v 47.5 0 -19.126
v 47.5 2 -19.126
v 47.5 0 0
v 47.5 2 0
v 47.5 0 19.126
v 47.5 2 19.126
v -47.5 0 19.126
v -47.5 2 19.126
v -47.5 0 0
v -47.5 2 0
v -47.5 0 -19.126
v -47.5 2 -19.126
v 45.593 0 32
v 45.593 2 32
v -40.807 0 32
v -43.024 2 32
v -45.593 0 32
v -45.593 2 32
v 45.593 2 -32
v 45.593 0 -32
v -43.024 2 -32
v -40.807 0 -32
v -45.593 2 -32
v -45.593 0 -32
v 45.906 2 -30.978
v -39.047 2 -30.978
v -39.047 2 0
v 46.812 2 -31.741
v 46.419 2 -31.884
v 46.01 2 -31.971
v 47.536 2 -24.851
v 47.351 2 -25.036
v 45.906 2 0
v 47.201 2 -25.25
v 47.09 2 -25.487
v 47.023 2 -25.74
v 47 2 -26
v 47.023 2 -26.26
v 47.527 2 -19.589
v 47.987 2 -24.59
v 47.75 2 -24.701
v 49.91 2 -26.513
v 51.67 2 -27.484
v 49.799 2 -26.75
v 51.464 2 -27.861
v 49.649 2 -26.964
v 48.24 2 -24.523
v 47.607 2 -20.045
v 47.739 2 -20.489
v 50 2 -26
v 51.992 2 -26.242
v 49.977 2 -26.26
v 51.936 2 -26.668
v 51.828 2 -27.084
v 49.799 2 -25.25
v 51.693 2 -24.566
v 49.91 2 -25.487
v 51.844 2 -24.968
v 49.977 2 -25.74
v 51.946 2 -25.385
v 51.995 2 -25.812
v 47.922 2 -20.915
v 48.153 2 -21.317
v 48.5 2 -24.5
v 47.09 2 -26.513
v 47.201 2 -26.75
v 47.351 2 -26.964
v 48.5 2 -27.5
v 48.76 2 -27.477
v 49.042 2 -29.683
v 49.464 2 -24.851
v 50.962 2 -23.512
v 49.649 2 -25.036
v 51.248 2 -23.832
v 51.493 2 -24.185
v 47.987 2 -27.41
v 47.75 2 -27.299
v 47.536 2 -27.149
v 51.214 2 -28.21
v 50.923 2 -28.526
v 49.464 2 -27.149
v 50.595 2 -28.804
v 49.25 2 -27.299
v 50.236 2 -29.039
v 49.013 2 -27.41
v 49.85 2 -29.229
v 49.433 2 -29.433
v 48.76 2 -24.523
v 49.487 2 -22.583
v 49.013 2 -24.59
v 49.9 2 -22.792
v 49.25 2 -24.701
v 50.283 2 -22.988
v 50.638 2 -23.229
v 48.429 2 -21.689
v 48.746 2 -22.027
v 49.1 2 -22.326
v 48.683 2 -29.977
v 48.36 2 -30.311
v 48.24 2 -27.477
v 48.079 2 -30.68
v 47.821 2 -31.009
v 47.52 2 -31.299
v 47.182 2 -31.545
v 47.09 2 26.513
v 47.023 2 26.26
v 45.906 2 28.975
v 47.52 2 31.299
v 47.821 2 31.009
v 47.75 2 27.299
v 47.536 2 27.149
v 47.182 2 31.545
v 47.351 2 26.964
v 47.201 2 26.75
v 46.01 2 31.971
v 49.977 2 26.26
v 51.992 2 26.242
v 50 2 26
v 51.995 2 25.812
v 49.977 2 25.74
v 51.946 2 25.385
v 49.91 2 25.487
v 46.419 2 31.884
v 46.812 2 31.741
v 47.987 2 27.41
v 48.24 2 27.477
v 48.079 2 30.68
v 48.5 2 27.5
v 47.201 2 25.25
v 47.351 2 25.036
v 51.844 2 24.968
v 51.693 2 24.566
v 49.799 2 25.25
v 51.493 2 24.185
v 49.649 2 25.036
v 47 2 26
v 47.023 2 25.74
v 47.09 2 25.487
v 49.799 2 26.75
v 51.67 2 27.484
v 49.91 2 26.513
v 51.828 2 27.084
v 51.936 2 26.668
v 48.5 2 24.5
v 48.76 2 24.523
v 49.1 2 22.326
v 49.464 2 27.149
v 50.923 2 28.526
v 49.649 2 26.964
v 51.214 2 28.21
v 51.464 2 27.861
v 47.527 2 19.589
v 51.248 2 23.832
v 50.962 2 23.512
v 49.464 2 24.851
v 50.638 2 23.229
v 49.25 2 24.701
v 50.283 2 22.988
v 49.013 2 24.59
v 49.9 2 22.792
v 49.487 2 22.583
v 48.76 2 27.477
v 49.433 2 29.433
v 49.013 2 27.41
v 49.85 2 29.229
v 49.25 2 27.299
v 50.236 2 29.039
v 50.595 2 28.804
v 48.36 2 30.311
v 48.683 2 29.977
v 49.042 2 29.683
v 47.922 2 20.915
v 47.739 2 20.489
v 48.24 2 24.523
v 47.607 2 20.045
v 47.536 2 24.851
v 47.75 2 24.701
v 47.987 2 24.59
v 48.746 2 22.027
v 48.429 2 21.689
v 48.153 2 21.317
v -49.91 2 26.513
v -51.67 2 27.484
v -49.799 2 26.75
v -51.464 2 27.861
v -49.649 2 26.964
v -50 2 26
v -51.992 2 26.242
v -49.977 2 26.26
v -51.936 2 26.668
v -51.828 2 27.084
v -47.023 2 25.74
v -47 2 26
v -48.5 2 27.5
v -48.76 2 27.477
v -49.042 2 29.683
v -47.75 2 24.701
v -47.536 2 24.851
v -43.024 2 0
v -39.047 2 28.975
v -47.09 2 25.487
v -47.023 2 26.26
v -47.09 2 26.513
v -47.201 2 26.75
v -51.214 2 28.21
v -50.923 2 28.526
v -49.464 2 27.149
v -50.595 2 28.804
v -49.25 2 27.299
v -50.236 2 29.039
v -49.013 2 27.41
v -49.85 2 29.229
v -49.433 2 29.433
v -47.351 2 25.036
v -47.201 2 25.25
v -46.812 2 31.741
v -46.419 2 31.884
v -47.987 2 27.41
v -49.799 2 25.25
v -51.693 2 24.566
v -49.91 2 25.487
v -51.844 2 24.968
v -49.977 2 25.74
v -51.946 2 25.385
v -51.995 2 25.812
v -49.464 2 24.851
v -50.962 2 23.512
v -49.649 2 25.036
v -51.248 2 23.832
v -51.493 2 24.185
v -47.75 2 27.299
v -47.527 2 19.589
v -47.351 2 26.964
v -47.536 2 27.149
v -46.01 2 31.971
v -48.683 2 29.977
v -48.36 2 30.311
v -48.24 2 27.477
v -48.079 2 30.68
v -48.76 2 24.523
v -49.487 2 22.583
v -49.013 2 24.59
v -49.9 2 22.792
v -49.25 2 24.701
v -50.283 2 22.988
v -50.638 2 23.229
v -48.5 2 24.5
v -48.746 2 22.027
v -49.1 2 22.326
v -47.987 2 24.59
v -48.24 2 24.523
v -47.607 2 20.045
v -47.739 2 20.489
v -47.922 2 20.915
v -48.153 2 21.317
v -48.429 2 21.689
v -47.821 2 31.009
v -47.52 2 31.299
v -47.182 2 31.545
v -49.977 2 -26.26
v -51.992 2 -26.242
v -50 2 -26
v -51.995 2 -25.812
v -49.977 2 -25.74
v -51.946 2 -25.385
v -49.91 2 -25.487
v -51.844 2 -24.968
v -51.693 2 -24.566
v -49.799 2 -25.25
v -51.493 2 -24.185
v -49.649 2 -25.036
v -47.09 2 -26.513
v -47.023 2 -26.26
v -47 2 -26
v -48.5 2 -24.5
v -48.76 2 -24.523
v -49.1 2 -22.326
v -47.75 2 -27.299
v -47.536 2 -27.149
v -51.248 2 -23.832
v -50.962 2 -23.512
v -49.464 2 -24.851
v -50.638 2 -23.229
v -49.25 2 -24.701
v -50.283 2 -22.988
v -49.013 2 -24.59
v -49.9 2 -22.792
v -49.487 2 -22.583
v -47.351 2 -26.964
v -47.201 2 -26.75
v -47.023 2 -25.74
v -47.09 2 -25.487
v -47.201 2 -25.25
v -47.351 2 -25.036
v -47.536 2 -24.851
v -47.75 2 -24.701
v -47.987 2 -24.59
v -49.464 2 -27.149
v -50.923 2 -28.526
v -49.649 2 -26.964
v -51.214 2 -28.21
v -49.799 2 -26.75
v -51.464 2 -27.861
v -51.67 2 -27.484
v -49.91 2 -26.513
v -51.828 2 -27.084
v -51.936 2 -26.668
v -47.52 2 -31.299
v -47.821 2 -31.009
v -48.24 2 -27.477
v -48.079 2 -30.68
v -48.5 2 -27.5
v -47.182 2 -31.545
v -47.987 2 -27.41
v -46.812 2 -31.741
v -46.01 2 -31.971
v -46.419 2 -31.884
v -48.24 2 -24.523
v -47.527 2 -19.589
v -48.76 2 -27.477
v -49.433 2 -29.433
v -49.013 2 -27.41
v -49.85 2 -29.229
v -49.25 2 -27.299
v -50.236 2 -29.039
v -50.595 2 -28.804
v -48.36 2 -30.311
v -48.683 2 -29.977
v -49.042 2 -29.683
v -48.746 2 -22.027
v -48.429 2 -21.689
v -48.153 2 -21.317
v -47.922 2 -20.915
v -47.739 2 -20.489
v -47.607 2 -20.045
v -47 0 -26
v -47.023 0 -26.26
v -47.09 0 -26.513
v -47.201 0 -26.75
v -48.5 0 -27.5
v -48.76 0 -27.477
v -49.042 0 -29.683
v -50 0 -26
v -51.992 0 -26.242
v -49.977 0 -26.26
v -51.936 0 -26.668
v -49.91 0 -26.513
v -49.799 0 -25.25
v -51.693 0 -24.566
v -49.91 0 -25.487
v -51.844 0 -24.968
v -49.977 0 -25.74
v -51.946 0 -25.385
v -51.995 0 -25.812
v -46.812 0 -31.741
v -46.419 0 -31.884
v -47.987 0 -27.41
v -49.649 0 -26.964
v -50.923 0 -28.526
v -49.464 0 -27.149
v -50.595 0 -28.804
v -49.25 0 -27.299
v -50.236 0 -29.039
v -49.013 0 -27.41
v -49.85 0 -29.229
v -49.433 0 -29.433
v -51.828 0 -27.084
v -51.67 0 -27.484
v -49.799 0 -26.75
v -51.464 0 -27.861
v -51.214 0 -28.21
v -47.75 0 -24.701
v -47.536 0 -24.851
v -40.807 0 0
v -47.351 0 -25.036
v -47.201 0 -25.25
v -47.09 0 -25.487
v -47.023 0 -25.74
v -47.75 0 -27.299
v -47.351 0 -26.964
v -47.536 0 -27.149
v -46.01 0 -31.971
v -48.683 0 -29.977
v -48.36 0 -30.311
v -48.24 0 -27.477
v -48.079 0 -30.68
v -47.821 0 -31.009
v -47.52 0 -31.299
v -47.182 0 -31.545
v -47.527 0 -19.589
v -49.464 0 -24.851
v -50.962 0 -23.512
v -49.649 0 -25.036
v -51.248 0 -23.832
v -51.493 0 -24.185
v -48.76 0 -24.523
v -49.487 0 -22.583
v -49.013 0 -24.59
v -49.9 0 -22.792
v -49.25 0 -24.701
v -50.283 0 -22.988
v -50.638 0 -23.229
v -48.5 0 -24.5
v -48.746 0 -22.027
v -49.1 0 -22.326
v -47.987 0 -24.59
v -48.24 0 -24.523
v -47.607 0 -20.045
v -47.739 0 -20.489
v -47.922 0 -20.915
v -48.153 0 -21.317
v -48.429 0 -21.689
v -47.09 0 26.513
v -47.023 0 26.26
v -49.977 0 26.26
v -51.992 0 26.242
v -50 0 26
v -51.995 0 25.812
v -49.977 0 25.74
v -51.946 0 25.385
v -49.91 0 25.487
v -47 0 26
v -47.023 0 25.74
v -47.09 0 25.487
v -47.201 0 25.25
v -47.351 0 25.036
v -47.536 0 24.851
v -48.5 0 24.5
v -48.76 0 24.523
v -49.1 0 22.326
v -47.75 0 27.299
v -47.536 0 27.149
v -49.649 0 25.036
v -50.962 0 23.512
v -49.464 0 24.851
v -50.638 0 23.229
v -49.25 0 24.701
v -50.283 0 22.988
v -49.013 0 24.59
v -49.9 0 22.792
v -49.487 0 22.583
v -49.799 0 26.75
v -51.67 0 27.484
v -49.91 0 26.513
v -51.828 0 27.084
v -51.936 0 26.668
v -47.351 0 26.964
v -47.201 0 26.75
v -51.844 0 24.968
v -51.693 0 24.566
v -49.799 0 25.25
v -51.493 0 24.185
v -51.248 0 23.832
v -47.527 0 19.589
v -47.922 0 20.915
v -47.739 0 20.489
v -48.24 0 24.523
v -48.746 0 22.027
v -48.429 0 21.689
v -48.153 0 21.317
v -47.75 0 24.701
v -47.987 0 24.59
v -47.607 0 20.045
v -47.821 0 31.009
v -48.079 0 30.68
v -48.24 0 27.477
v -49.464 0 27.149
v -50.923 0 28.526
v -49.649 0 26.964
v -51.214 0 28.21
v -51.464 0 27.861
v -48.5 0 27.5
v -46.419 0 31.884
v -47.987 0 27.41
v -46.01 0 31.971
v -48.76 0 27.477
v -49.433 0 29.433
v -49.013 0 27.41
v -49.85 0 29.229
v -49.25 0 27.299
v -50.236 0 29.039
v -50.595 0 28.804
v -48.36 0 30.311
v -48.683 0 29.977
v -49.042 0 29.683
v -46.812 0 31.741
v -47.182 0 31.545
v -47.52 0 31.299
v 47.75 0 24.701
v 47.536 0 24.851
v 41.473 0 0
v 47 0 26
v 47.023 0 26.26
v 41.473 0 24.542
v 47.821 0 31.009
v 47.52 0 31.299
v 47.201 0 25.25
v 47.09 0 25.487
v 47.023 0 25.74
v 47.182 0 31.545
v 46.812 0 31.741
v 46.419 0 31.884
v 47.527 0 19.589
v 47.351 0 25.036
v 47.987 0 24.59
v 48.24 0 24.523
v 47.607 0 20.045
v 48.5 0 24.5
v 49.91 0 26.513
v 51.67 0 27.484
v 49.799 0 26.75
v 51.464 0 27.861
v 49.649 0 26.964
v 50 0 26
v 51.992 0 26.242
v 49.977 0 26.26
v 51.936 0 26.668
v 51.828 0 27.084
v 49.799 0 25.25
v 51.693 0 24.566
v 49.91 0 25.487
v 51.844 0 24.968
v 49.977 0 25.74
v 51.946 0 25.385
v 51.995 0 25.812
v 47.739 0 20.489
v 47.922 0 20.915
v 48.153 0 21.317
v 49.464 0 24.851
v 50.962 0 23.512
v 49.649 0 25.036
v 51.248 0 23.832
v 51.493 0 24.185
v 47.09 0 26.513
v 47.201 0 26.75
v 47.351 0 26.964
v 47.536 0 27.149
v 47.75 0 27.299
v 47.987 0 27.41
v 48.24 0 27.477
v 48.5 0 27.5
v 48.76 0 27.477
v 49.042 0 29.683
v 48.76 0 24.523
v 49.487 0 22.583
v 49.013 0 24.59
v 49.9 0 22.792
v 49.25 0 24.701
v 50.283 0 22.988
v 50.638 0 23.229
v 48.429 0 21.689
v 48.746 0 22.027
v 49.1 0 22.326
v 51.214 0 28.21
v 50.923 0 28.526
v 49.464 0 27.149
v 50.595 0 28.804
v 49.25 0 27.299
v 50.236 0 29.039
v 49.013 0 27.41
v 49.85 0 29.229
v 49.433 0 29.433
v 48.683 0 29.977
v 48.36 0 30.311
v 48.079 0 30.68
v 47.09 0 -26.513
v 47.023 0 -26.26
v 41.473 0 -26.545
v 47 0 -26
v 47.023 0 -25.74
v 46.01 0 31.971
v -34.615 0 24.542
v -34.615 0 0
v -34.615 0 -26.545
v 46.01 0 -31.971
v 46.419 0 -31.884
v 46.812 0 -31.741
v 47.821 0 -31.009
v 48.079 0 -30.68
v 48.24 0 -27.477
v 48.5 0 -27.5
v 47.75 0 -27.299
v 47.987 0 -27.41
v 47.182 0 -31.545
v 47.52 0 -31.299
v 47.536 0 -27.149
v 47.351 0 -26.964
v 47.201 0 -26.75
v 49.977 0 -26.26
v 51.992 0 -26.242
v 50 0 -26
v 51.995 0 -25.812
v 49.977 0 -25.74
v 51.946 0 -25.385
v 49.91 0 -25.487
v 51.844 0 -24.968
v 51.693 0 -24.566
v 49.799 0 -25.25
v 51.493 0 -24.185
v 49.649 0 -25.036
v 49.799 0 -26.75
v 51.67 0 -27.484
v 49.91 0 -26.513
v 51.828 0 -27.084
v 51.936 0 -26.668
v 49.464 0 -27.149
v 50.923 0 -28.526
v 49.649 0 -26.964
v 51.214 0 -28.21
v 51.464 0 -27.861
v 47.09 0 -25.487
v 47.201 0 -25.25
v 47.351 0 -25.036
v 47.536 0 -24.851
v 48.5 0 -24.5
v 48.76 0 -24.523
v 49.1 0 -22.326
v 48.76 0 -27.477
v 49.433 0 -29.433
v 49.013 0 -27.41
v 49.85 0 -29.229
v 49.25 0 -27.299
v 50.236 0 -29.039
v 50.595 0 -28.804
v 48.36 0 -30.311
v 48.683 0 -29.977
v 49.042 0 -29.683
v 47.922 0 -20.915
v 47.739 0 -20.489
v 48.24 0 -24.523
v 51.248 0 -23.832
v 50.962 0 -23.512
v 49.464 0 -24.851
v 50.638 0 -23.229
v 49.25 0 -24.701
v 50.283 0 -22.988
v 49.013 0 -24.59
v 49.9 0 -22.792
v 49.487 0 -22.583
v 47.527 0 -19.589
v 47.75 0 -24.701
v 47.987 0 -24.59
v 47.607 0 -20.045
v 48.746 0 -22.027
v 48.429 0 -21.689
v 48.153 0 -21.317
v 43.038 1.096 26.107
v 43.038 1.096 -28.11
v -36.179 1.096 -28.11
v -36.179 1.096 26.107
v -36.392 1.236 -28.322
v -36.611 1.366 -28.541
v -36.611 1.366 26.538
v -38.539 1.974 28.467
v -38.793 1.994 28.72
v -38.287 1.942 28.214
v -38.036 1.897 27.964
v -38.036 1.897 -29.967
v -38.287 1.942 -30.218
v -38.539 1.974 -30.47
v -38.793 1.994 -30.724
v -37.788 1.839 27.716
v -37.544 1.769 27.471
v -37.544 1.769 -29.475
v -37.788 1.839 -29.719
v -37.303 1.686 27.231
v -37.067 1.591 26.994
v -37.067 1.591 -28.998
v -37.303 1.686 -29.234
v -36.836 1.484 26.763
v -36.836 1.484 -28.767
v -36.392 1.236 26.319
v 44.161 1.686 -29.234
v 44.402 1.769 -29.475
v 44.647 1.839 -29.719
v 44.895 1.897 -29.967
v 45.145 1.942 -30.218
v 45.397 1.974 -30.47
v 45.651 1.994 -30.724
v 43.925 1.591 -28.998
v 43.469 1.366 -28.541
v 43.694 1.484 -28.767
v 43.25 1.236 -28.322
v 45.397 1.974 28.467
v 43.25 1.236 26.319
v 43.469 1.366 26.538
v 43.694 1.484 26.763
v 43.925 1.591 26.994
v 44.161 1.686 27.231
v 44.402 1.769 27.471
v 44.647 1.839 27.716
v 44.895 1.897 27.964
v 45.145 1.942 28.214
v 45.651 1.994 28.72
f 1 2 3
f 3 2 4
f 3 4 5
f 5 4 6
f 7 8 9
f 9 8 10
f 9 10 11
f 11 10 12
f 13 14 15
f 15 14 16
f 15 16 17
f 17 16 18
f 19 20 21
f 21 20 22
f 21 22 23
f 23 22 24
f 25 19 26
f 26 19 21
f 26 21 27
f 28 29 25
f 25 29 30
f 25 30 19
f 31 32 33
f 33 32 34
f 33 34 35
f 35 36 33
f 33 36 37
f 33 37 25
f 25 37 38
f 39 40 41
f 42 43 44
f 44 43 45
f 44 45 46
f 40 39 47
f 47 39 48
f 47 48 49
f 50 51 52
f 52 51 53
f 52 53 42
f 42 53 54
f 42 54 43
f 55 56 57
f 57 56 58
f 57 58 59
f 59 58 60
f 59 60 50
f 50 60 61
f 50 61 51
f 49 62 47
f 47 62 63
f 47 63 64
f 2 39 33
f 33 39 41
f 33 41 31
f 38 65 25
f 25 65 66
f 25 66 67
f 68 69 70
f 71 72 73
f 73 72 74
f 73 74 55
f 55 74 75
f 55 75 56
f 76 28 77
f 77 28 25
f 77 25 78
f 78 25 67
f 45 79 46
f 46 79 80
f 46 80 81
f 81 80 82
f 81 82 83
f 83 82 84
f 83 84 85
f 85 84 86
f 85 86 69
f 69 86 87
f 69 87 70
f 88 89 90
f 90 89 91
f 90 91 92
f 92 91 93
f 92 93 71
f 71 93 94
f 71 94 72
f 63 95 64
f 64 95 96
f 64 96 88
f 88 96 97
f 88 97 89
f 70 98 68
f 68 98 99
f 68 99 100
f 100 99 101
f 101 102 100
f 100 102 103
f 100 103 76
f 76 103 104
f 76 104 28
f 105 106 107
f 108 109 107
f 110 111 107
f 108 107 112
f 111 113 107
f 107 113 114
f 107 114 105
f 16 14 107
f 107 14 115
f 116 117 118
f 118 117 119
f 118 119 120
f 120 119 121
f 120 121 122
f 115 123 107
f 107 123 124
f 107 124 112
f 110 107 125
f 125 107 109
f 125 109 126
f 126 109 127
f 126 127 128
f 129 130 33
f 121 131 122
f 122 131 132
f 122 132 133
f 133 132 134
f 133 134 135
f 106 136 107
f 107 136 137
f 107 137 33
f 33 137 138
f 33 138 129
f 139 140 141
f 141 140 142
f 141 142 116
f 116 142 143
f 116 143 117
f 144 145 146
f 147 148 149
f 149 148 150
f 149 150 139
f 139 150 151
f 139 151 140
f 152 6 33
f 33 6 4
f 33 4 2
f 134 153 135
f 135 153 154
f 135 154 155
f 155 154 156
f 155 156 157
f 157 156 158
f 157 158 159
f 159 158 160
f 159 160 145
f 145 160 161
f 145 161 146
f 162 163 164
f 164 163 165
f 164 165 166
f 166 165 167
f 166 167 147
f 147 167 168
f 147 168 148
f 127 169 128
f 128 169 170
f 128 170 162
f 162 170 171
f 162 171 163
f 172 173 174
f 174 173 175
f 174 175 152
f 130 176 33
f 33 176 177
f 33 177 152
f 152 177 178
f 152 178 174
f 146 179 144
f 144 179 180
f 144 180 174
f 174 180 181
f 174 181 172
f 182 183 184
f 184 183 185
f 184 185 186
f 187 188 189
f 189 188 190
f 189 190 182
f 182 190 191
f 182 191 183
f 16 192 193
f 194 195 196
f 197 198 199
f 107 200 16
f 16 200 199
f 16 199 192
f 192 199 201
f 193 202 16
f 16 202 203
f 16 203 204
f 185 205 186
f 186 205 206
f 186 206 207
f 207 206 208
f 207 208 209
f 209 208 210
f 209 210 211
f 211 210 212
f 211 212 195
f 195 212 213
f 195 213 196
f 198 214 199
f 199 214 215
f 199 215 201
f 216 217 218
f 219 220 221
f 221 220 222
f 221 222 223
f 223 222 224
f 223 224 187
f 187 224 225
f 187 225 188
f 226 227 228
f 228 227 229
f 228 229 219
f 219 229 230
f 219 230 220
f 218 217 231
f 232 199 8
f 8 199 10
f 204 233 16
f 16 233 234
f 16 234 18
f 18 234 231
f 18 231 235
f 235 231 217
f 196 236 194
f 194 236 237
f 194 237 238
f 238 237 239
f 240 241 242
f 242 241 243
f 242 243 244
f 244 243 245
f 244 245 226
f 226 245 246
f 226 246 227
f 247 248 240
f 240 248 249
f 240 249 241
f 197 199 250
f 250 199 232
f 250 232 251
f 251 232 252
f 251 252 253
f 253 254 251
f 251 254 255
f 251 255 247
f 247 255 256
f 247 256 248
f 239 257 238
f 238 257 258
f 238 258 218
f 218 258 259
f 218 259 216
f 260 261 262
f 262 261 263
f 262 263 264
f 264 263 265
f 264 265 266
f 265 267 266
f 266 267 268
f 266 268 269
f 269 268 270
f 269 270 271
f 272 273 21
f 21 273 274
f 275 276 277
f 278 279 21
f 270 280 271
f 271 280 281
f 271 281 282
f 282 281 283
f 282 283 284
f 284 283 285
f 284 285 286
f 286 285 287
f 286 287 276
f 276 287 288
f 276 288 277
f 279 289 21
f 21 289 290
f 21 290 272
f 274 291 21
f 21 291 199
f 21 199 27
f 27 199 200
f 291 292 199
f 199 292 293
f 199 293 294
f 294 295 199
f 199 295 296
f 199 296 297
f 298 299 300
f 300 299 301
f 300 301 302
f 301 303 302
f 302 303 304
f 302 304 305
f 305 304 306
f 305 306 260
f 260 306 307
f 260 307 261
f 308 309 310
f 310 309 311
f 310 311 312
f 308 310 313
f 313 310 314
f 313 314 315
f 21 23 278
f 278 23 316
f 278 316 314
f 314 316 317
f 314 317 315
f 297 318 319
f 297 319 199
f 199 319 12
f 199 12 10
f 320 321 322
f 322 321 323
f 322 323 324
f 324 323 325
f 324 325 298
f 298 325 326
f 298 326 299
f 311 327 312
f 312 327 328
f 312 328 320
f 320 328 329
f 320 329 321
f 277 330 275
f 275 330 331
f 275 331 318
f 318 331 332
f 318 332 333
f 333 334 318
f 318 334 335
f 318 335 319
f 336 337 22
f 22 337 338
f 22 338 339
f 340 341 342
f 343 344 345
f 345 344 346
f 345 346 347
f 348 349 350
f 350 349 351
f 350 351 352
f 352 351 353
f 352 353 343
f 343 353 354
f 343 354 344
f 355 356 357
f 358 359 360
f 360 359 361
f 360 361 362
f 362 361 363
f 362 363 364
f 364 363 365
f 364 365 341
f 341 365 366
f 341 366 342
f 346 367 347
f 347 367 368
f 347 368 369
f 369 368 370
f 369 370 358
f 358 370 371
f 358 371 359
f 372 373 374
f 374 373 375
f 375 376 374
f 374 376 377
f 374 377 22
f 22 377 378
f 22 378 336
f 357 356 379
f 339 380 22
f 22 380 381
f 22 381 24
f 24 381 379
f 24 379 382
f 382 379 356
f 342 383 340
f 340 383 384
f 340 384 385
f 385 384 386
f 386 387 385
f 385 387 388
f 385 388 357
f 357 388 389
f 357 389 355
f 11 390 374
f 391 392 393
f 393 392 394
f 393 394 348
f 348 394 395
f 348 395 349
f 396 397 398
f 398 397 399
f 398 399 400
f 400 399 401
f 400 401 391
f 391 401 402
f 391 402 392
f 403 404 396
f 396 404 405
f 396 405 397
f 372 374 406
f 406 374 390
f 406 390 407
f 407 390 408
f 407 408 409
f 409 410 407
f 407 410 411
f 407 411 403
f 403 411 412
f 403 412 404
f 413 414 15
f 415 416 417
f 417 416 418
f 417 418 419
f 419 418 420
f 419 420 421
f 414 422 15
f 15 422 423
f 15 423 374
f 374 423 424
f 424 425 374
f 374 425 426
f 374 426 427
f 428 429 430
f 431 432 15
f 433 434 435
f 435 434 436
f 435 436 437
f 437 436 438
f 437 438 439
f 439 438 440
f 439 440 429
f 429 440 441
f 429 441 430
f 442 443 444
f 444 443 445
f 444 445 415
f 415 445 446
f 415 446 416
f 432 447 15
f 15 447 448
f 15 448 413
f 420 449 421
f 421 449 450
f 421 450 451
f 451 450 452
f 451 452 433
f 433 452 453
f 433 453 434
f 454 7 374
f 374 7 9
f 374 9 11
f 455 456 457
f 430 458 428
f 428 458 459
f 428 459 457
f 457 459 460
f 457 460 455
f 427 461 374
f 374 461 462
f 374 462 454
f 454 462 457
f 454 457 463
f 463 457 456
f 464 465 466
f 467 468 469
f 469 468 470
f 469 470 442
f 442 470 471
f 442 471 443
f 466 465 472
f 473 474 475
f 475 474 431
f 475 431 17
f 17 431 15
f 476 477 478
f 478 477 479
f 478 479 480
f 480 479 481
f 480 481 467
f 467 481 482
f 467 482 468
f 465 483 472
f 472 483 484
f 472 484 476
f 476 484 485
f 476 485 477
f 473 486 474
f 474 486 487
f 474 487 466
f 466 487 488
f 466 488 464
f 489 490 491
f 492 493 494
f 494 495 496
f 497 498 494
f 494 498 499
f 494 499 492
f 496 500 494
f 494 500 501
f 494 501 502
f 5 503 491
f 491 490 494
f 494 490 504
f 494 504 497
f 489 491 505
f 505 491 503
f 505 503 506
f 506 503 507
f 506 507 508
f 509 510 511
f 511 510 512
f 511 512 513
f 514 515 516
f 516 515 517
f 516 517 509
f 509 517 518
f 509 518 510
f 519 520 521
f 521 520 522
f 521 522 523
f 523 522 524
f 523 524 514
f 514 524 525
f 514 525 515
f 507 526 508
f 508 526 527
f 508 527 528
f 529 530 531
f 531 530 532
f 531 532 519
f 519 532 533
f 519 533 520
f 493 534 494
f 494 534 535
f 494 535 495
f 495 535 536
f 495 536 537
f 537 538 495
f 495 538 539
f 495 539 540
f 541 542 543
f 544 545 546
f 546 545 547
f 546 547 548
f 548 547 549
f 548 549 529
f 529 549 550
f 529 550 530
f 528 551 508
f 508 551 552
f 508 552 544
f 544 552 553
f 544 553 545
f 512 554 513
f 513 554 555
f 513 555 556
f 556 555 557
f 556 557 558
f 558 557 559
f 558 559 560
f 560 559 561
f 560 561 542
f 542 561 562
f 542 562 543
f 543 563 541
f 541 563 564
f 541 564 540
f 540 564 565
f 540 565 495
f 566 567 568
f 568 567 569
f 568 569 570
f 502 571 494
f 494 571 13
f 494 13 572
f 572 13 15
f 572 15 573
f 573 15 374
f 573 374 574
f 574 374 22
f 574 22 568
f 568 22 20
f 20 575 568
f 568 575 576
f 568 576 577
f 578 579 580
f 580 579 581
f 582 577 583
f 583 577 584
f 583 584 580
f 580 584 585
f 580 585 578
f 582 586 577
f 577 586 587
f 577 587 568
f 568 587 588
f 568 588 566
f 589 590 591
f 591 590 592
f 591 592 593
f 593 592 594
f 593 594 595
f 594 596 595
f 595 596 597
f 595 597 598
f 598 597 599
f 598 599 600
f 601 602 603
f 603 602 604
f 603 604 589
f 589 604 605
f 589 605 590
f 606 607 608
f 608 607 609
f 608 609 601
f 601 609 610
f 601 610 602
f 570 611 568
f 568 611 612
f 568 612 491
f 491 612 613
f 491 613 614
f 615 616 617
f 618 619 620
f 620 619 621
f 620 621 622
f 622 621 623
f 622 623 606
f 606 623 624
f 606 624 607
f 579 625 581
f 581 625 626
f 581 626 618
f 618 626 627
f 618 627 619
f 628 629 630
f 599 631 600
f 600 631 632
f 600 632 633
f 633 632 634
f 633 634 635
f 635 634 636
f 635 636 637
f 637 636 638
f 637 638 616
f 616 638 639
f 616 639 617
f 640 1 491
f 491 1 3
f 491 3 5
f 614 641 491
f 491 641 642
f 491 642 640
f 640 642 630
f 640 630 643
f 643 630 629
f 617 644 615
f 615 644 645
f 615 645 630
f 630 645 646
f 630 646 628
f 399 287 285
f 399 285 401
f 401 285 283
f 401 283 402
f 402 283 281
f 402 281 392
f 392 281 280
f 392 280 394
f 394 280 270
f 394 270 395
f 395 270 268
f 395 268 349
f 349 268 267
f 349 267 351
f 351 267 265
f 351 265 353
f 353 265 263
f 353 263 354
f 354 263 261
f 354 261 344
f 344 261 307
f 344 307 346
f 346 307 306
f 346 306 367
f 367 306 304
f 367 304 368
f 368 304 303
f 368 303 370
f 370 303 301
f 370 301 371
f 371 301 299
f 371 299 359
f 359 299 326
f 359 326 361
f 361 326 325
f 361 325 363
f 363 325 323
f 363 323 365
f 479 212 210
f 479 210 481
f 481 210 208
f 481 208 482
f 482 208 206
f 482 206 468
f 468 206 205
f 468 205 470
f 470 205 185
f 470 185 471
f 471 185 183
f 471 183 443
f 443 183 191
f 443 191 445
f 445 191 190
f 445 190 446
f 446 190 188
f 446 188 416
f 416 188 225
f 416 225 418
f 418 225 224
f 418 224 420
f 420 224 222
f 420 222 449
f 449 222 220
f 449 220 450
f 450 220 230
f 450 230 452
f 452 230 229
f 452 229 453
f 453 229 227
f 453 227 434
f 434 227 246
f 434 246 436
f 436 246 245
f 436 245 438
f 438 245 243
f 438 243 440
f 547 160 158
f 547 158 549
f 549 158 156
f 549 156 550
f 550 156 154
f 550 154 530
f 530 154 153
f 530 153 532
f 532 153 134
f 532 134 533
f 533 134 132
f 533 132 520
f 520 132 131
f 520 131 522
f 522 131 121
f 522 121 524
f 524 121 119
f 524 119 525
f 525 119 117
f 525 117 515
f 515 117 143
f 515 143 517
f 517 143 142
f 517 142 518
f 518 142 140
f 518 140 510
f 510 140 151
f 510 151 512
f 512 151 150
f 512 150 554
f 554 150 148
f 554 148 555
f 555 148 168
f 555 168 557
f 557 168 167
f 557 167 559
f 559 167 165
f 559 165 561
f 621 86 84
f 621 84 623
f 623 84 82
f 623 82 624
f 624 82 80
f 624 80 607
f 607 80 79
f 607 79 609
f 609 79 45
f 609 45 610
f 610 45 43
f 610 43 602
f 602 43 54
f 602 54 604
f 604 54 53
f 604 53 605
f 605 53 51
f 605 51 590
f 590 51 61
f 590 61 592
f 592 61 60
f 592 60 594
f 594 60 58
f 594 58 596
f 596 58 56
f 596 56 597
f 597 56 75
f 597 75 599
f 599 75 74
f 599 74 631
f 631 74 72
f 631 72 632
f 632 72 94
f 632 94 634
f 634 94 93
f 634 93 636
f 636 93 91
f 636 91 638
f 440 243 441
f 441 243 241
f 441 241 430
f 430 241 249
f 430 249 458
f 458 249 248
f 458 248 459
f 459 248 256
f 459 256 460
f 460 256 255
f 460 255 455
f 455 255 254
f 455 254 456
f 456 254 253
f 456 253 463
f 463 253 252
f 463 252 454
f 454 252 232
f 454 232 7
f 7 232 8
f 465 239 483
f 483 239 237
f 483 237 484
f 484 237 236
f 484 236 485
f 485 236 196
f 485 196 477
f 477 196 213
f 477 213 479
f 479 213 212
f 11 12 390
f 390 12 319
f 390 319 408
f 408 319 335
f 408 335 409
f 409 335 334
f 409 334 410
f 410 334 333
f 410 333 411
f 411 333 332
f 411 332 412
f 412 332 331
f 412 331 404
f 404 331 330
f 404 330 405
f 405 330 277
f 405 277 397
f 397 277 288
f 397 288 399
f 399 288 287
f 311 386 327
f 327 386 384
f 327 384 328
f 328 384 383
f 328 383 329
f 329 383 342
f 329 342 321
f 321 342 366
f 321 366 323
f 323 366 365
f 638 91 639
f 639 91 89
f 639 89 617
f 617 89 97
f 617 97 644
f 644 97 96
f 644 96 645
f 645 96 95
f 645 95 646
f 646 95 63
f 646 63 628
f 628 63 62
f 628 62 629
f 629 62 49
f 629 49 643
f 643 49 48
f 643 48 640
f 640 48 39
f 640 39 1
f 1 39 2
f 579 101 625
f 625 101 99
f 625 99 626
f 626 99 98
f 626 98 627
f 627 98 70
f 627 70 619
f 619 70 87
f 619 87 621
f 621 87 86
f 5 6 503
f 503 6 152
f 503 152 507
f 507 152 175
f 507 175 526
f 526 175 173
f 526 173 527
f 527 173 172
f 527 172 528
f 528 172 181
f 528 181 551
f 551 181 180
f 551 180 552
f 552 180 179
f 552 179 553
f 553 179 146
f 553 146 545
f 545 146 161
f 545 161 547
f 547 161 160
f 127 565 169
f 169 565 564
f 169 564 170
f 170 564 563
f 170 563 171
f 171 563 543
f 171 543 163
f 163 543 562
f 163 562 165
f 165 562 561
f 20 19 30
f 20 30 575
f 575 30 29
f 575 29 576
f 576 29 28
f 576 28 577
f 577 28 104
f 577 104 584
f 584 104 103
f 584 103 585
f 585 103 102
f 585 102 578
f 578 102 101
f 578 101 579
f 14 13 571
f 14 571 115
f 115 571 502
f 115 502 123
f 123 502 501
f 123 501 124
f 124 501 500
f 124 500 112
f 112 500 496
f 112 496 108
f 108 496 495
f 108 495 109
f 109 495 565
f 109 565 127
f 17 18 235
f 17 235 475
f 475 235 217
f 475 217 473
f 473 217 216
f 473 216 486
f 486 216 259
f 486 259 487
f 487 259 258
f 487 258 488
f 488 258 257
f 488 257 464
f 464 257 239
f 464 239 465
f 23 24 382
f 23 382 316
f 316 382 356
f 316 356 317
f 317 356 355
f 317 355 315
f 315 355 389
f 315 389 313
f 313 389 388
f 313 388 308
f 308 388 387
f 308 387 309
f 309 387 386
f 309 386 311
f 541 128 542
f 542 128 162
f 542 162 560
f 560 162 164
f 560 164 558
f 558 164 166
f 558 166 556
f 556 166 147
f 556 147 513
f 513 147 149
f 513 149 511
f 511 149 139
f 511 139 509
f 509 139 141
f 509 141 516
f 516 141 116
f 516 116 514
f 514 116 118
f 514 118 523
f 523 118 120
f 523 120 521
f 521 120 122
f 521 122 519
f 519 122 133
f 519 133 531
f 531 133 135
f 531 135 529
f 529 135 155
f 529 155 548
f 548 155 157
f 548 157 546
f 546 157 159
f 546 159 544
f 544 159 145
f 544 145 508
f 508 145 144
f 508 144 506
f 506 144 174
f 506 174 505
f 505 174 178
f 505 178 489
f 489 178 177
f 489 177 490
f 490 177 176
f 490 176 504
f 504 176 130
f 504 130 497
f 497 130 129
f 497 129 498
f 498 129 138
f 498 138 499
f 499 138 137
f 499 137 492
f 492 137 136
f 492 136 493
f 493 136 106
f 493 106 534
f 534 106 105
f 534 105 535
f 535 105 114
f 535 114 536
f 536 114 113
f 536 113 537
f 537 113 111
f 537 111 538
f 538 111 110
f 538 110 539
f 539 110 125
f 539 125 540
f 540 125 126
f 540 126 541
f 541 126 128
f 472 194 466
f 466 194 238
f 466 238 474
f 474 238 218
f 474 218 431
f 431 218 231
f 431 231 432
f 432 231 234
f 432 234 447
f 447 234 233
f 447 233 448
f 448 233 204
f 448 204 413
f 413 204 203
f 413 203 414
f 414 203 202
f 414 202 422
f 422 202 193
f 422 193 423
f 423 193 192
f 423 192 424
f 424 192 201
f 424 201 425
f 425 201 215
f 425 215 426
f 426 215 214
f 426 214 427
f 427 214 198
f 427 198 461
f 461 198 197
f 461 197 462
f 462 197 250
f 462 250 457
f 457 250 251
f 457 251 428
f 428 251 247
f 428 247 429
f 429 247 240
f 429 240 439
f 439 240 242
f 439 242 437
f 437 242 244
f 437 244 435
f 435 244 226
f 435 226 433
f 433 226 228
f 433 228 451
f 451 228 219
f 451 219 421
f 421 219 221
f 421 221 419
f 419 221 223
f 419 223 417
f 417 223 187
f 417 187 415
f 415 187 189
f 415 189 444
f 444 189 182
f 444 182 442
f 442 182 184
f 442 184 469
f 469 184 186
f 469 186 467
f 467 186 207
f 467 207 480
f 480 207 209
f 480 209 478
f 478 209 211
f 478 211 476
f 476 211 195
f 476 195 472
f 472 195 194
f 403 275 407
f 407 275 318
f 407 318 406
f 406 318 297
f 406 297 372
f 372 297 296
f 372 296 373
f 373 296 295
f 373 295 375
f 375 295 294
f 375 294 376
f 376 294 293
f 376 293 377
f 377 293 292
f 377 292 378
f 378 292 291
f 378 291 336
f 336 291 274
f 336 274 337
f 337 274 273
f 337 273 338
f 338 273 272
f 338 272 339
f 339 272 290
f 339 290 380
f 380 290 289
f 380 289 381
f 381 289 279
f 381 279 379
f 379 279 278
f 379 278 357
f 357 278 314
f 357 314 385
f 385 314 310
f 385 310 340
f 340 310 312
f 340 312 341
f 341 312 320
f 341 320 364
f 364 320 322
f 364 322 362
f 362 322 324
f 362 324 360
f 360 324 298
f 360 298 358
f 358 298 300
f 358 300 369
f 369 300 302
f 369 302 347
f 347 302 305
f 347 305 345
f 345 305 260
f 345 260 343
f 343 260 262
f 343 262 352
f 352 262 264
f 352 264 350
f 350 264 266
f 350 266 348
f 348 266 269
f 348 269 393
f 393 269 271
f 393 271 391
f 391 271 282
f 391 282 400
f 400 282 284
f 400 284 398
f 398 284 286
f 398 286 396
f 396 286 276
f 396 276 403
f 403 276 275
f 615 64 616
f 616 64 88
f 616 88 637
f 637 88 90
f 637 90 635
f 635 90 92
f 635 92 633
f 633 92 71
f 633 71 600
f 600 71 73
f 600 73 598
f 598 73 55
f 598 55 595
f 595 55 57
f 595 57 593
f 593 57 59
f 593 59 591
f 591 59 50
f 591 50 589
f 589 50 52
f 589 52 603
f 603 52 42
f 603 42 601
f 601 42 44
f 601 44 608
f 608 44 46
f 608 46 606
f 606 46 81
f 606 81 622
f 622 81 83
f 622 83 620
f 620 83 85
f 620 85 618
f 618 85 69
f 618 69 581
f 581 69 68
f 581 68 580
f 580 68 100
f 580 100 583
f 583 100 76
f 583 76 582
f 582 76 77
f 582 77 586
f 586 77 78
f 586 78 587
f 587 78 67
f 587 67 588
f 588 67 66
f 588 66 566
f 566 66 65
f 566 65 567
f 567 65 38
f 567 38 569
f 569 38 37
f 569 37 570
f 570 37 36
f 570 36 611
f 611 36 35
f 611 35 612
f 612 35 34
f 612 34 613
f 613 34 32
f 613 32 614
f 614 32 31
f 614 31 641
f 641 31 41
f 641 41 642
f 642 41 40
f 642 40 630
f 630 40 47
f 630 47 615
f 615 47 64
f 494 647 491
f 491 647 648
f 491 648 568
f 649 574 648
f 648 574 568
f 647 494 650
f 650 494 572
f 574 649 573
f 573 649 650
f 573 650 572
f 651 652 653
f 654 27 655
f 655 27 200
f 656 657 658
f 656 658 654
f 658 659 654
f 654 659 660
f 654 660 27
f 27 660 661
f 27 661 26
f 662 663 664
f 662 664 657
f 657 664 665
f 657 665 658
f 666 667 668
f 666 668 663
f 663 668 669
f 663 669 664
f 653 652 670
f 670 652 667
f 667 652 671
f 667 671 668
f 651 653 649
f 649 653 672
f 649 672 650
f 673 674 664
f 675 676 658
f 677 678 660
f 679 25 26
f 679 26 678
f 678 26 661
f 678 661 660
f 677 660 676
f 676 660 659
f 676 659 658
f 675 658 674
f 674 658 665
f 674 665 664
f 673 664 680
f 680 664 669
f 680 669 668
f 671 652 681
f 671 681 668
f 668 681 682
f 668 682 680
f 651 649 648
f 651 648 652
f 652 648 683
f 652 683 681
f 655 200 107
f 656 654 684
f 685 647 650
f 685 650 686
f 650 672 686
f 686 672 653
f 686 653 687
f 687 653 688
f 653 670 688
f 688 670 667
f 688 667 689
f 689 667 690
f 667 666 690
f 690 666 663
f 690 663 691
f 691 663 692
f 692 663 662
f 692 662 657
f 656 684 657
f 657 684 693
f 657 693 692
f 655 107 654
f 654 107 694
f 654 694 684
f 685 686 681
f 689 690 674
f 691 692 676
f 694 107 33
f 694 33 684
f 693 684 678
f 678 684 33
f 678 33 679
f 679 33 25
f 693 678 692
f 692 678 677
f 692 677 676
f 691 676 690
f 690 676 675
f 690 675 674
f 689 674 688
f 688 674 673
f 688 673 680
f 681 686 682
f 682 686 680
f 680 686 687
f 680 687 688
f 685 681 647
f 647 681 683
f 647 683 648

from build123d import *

# Parameters (mm, degrees)
SKETCH1_W           = 95
SKETCH1_H           = 64
BOSS_EXTRUDE1_DEPTH = 2
SKETCH2_R           = 3.5
BOSS_EXTRUDE2_DEPTH = 2
FILLET1_R           = 4
FILLET2_R           = 3
SKETCH3_R           = 1.5
CUT_EXTRUDE1_DEPTH  = 62.090097397
SKETCH4_W           = 75.8
SKETCH4_H           = 50.8
CUT_EXTRUDE2_DEPTH  = 62.090097397
CHAMFER1_SIZE       = 3
CHAMFER1_SIZE_2     = 2.100622615
FILLET3_R           = 5


with BuildPart() as part:
    # Sketch1 → Boss-Extrude1 (new body)
    with BuildSketch(Plane(origin=(0, 0, 0), x_dir=(1, 0, 0), z_dir=(0, 1, 0))):
        Rectangle(SKETCH1_W, SKETCH1_H)
    extrude(amount=BOSS_EXTRUDE1_DEPTH)

    # Sketch2 → Boss-Extrude2 (add)
    with BuildSketch(Plane(origin=(0, 2, 0), x_dir=(1, 0, 0), z_dir=(0, 1, 0))):
        with Locations((-48.5, -26)):
            Circle(SKETCH2_R)
        with Locations((-48.5, 26)):
            Circle(SKETCH2_R)
        with Locations((48.5, -26)):
            Circle(SKETCH2_R)
        with Locations((48.5, 26)):
            Circle(SKETCH2_R)
    extrude(amount=-BOSS_EXTRUDE2_DEPTH)

    # Fillet1
    # the kernel refuses this fillet: 4 mm, written as the material it adds along each edge
    with BuildSketch(Plane(origin=(-47.5, 0, -29.354101966), x_dir=(0, 0, -1), z_dir=(0, 1, 0))) as fillet1_piece_1:
        with BuildLine():
            CenterArc((3.565539249, 3.892847292), FILLET1_R, 202.68800958, 54.020199403)
            Line((-0.124936066, 2.349995403), (-0.198745572, 2.319138365))
            ThreePointArc((-0.198745572, 2.319138365), (0.061075022, 1.181565792), (-0.076665188, 0.022857143))
            Line((-0.076665188, 0.022857143), (0, -0.08))
            ThreePointArc((0, -0.08), (1.322949017, -0.08), (2.627505209, -0.077856946))
            Line((2.627505209, -0.077856946), (2.645898034, 0))
        make_face()
    extrude(amount=2)
    with BuildSketch(Plane(origin=(-47.5, 0, -22.645898034), x_dir=(-0.998147228603926, 0, -0.06084496717315217), z_dir=(0, 1, 0)), Plane(origin=(47.5, 0, 22.645898034), x_dir=(0.9981472286039255, 0, 0.06084496717316137), z_dir=(0, 1, 0))) as fillet1_piece_2:
        with BuildLine():
            CenterArc((3.778429137, 3.756620131), FILLET1_R, 183.48831444, 66.421821522)
            Line((-0.214159778, 3.513240263), (-0.294011556, 3.508372665))
            Line((-0.294011556, 3.508372665), (-0.079851778, -0.004867597))
            Line((-0.079851778, -0.004867597), (0.027479485, -0.075132403))
            ThreePointArc((0.027479485, -0.075132403), (1.202227453, 0.132957385), (2.376975421, -0.075132403))
            Line((2.376975421, -0.075132403), (2.404454905, 0))
        make_face()
    extrude(amount=2)
    with BuildSketch(Plane(origin=(-47.5, 0, 22.645898034), x_dir=(0, 0, -1), z_dir=(0, 1, 0)), Plane(origin=(47.5, 0, -22.645898034), x_dir=(0, 0, 1), z_dir=(0, 1, 0))) as fillet1_piece_3:
        with BuildLine():
            CenterArc((3.519761576, 4), FILLET1_R, 203.578178478, 66.421821522)
            Line((-0.14629898, 2.4), (-0.219620191, 2.368))
            ThreePointArc((-0.219620191, 2.368), (0.059561556, 1.208089788), (-0.076665188, 0.022857143))
            Line((-0.076665188, 0.022857143), (0, -0.08))
            Line((0, -0.08), (3.519761576, -0.08))
            Line((3.519761576, -0.08), (3.519761576, 0))
        make_face()
    extrude(amount=2)
    with BuildSketch(Plane(origin=(-47.5, 0, 29.354101966), x_dir=(-0.9985897627331907, 0, -0.05308941292263453), z_dir=(0, 1, 0)), Plane(origin=(47.5, 0, -29.354101966), x_dir=(0.9985897627331903, 0, 0.053089412922639356), z_dir=(0, 1, 0))) as fillet1_piece_4:
        with BuildLine():
            CenterArc((3.698065068, 3.76717997), FILLET1_R, 196.335021008, 54.020199403)
            Line((-0.140469173, 2.64216669), (-0.217239858, 2.619666424))
            ThreePointArc((-0.217239858, 2.619666424), (-0.150121768, 1.316836192), (-0.079887181, -0.004247153))
            Line((-0.079887181, -0.004247153), (0.026895019, -0.075343599))
            ThreePointArc((0.026895019, -0.075343599), (1.176657067, 0.123717526), (2.326419115, -0.075343599))
            Line((2.326419115, -0.075343599), (2.353314134, 0))
        make_face()
    extrude(amount=2)
    with BuildSketch(Plane(origin=(47.5, 0, 29.354101966), x_dir=(0.9985897627331901, 0, -0.05308941292264221), z_dir=(0, 1, 0))) as fillet1_piece_5:
        with BuildLine():
            CenterArc((3.698065068, -3.76717997), FILLET1_R, 109.64477959, 54.020199403)
            Line((-0.140469173, -2.64216669), (-0.217239858, -2.619666424))
            ThreePointArc((-0.217239858, -2.619666424), (-0.150121768, -1.316836192), (-0.079887181, 0.004247153))
            Line((-0.079887181, 0.004247153), (0.026895019, 0.075343599))
            ThreePointArc((0.026895019, 0.075343599), (1.176657067, -0.123717526), (2.326419115, 0.075343599))
            Line((2.326419115, 0.075343599), (2.353314134, 0))
        make_face()
    extrude(amount=2)

    # Fillet2
    fillet2_edges = [part.edges().sort_by_distance(p)[0] for p in [
        (-47.5, 1, -32),
        (47.5, 1, -32),
        (47.5, 1, 32),
        (-47.5, 1, 32),
    ]]
    fillet(fillet2_edges, radius=FILLET2_R)

    # Sketch3 → Cut-Extrude1 (cut, through all)
    with BuildSketch(Plane(origin=(0, 2, 0), x_dir=(1, 0, 0), z_dir=(0, 1, 0))):
        with Locations(Location((48.5, -26, 0), (0, 0, 270))):
            Circle(SKETCH3_R)
        with Locations(Location((48.5, 26, 0), (0, 0, 270))):
            Circle(SKETCH3_R)
        with Locations(Location((-48.5, 26, 0), (0, 0, 270))):
            Circle(SKETCH3_R)
        with Locations(Location((-48.5, -26, 0), (0, 0, 270))):
            Circle(SKETCH3_R)
    extrude(amount=-CUT_EXTRUDE1_DEPTH, mode=Mode.SUBTRACT)

    # Sketch4 → Cut-Extrude2 (cut, through all)
    with BuildSketch(Plane(origin=(0, 2, 0), x_dir=(1, 0, 0), z_dir=(0, 1, 0))):
        with Locations((3.429138832, 1.001657313)):
            Rectangle(SKETCH4_W, SKETCH4_H)
    extrude(amount=-CUT_EXTRUDE2_DEPTH, mode=Mode.SUBTRACT)

    # Chamfer1
    # the kernel refuses this chamfer: 3, 2.100622615 mm, written as the material it takes off along each edge
    with BuildSketch(Plane(origin=(-34.470861168, 2, -26.401657313), x_dir=(-0.9997533347641299, 0.022209674198456996, 0), z_dir=(0, 0, 1)), Plane(origin=(41.329138832, 2, 24.398342687), x_dir=(0.9997533347641299, 0.022209674198456996, 0), z_dir=(0, 0, -1))) as chamfer1_piece_1:
        Polygon((CHAMFER1_SIZE * 0.999753334764, CHAMFER1_SIZE * 0.0222096741985), (-CHAMFER1_SIZE_2 * 0.0222096741945, CHAMFER1_SIZE_2 * 0.999753334588), (0, 0), align=None)
    extrude(amount=50.8, mode=Mode.SUBTRACT)
    with BuildSketch(Plane(origin=(-34.470861168, 2, 24.398342687), x_dir=(0, 0.022209674198456996, 0.9997533347641299), z_dir=(1, 0, 0)), Plane(origin=(41.329138832, 2, -26.401657313), x_dir=(0, 0.022209674198456972, -0.99975333476413), z_dir=(-1, 0, 0))) as chamfer1_piece_2:
        Polygon((CHAMFER1_SIZE * 0.999753334764, CHAMFER1_SIZE * 0.0222096741985), (-CHAMFER1_SIZE_2 * 0.0222096741945, CHAMFER1_SIZE_2 * 0.999753334588), (0, 0), align=None)
    extrude(amount=75.8, mode=Mode.SUBTRACT)
    with BuildSketch(Plane(origin=(-34.470861168, 2, -34.149314004), x_dir=(-0.9997533347641299, 0.022209674198456996, 0), z_dir=(0, 0, 1))) as chamfer1_piece_3a_section:
        Polygon((CHAMFER1_SIZE * 0.999753334764, CHAMFER1_SIZE * 0.0222096741985), (-CHAMFER1_SIZE_2 * 0.0222096741945, CHAMFER1_SIZE_2 * 0.999753334588), (0, 0), align=None)
    chamfer1_piece_3a = extrude(amount=58.547656691, mode=Mode.PRIVATE)
    chamfer1_piece_3a = split(chamfer1_piece_3a, bisect_by=Plane(origin=(-35.470351342, 1.318269678, -26.401657313), z_dir=(0, 0, -1)), keep=Keep.TOP, mode=Mode.PRIVATE)
    with BuildSketch(Plane(origin=(41.329138832, 2, -26.401657313), x_dir=(0, 0.022209674198456972, -0.99975333476413), z_dir=(-1, 0, 0))) as chamfer1_piece_3b_section:
        Polygon((CHAMFER1_SIZE * 0.999753334764, CHAMFER1_SIZE * 0.0222096741985), (-CHAMFER1_SIZE_2 * 0.0222096741945, CHAMFER1_SIZE_2 * 0.999753334588), (0, 0), align=None)
    chamfer1_piece_3b = extrude(amount=83.547656691, mode=Mode.PRIVATE)
    chamfer1_piece_3b = split(chamfer1_piece_3b, bisect_by=Plane(origin=(-34.470861168, 1.318269678, -27.401147488), z_dir=(-1, 0, 0)), keep=Keep.TOP, mode=Mode.PRIVATE)
    chamfer1_piece_3 = chamfer1_piece_3a & chamfer1_piece_3b
    add(chamfer1_piece_3, mode=Mode.SUBTRACT)
    with BuildSketch(Plane(origin=(-34.470861168, 2, -26.401657313), x_dir=(-0.9997533347641299, 0.022209674198456996, 0), z_dir=(0, 0, 1))) as chamfer1_piece_4a_section:
        Polygon((CHAMFER1_SIZE * 0.999753334764, CHAMFER1_SIZE * 0.0222096741985), (-CHAMFER1_SIZE_2 * 0.0222096741945, CHAMFER1_SIZE_2 * 0.999753334588), (0, 0), align=None)
    chamfer1_piece_4a = extrude(amount=58.547656691, mode=Mode.PRIVATE)
    chamfer1_piece_4a = split(chamfer1_piece_4a, bisect_by=Plane(origin=(-35.470351342, 1.318269678, 24.398342687), z_dir=(0, 0, 1)), keep=Keep.TOP, mode=Mode.PRIVATE)
    with BuildSketch(Plane(origin=(-42.218517859, 2, 24.398342687), x_dir=(0, 0.022209674198456996, 0.9997533347641299), z_dir=(1, 0, 0))) as chamfer1_piece_4b_section:
        Polygon((CHAMFER1_SIZE * 0.999753334764, CHAMFER1_SIZE * 0.0222096741985), (-CHAMFER1_SIZE_2 * 0.0222096741945, CHAMFER1_SIZE_2 * 0.999753334588), (0, 0), align=None)
    chamfer1_piece_4b = extrude(amount=83.547656691, mode=Mode.PRIVATE)
    chamfer1_piece_4b = split(chamfer1_piece_4b, bisect_by=Plane(origin=(-34.470861168, 1.318269678, 25.397832861), z_dir=(-1, 0, 0)), keep=Keep.TOP, mode=Mode.PRIVATE)
    chamfer1_piece_4 = chamfer1_piece_4a & chamfer1_piece_4b
    add(chamfer1_piece_4, mode=Mode.SUBTRACT)
    with BuildSketch(Plane(origin=(41.329138832, 2, 32.145999377), x_dir=(0.9997533347641299, 0.022209674198456996, 0), z_dir=(0, 0, -1))) as chamfer1_piece_5a_section:
        Polygon((CHAMFER1_SIZE * 0.999753334764, CHAMFER1_SIZE * 0.0222096741985), (-CHAMFER1_SIZE_2 * 0.0222096741945, CHAMFER1_SIZE_2 * 0.999753334588), (0, 0), align=None)
    chamfer1_piece_5a = extrude(amount=58.547656691, mode=Mode.PRIVATE)
    chamfer1_piece_5a = split(chamfer1_piece_5a, bisect_by=Plane(origin=(42.328629006, 1.318269678, 24.398342687), z_dir=(0, 0, 1)), keep=Keep.TOP, mode=Mode.PRIVATE)
    with BuildSketch(Plane(origin=(-34.470861168, 2, 24.398342687), x_dir=(0, 0.022209674198456996, 0.9997533347641299), z_dir=(1, 0, 0))) as chamfer1_piece_5b_section:
        Polygon((CHAMFER1_SIZE * 0.999753334764, CHAMFER1_SIZE * 0.0222096741985), (-CHAMFER1_SIZE_2 * 0.0222096741945, CHAMFER1_SIZE_2 * 0.999753334588), (0, 0), align=None)
    chamfer1_piece_5b = extrude(amount=83.547656691, mode=Mode.PRIVATE)
    chamfer1_piece_5b = split(chamfer1_piece_5b, bisect_by=Plane(origin=(41.329138832, 1.318269678, 25.397832861), z_dir=(1, 0, 0)), keep=Keep.TOP, mode=Mode.PRIVATE)
    chamfer1_piece_5 = chamfer1_piece_5a & chamfer1_piece_5b
    add(chamfer1_piece_5, mode=Mode.SUBTRACT)
    with BuildSketch(Plane(origin=(49.076795523, 2, -26.401657313), x_dir=(0, 0.022209674198456944, -0.9997533347641299), z_dir=(-1, 0, 0))) as chamfer1_piece_6a_section:
        Polygon((CHAMFER1_SIZE * 0.999753334764, CHAMFER1_SIZE * 0.0222096741985), (-CHAMFER1_SIZE_2 * 0.0222096741945, CHAMFER1_SIZE_2 * 0.999753334588), (0, 0), align=None)
    chamfer1_piece_6a = extrude(amount=83.547656691, mode=Mode.PRIVATE)
    chamfer1_piece_6a = split(chamfer1_piece_6a, bisect_by=Plane(origin=(41.329138832, 1.318269678, -27.401147488), z_dir=(1, 0, 0)), keep=Keep.TOP, mode=Mode.PRIVATE)
    with BuildSketch(Plane(origin=(41.329138832, 2, 24.398342687), x_dir=(0.9997533347641299, 0.022209674198456996, 0), z_dir=(0, 0, -1))) as chamfer1_piece_6b_section:
        Polygon((CHAMFER1_SIZE * 0.999753334764, CHAMFER1_SIZE * 0.0222096741985), (-CHAMFER1_SIZE_2 * 0.0222096741945, CHAMFER1_SIZE_2 * 0.999753334588), (0, 0), align=None)
    chamfer1_piece_6b = extrude(amount=58.547656691, mode=Mode.PRIVATE)
    chamfer1_piece_6b = split(chamfer1_piece_6b, bisect_by=Plane(origin=(42.328629006, 1.318269678, -26.401657313), z_dir=(0, 0, -1)), keep=Keep.TOP, mode=Mode.PRIVATE)
    chamfer1_piece_6 = chamfer1_piece_6a & chamfer1_piece_6b
    add(chamfer1_piece_6, mode=Mode.SUBTRACT)

    # Fillet3
    fillet3_edges = [part.edges().sort_by_distance(p)[0] for p in [
        (3.429138832, 2, 27.398342687),
        (44.329138832, 2, -1.001657313),
        (3.429138832, 2, -29.401657313),
        (-37.470861168, 2, -1.001657313),
    ]]
    fillet(fillet3_edges, radius=FILLET3_R)


solid = part.part
